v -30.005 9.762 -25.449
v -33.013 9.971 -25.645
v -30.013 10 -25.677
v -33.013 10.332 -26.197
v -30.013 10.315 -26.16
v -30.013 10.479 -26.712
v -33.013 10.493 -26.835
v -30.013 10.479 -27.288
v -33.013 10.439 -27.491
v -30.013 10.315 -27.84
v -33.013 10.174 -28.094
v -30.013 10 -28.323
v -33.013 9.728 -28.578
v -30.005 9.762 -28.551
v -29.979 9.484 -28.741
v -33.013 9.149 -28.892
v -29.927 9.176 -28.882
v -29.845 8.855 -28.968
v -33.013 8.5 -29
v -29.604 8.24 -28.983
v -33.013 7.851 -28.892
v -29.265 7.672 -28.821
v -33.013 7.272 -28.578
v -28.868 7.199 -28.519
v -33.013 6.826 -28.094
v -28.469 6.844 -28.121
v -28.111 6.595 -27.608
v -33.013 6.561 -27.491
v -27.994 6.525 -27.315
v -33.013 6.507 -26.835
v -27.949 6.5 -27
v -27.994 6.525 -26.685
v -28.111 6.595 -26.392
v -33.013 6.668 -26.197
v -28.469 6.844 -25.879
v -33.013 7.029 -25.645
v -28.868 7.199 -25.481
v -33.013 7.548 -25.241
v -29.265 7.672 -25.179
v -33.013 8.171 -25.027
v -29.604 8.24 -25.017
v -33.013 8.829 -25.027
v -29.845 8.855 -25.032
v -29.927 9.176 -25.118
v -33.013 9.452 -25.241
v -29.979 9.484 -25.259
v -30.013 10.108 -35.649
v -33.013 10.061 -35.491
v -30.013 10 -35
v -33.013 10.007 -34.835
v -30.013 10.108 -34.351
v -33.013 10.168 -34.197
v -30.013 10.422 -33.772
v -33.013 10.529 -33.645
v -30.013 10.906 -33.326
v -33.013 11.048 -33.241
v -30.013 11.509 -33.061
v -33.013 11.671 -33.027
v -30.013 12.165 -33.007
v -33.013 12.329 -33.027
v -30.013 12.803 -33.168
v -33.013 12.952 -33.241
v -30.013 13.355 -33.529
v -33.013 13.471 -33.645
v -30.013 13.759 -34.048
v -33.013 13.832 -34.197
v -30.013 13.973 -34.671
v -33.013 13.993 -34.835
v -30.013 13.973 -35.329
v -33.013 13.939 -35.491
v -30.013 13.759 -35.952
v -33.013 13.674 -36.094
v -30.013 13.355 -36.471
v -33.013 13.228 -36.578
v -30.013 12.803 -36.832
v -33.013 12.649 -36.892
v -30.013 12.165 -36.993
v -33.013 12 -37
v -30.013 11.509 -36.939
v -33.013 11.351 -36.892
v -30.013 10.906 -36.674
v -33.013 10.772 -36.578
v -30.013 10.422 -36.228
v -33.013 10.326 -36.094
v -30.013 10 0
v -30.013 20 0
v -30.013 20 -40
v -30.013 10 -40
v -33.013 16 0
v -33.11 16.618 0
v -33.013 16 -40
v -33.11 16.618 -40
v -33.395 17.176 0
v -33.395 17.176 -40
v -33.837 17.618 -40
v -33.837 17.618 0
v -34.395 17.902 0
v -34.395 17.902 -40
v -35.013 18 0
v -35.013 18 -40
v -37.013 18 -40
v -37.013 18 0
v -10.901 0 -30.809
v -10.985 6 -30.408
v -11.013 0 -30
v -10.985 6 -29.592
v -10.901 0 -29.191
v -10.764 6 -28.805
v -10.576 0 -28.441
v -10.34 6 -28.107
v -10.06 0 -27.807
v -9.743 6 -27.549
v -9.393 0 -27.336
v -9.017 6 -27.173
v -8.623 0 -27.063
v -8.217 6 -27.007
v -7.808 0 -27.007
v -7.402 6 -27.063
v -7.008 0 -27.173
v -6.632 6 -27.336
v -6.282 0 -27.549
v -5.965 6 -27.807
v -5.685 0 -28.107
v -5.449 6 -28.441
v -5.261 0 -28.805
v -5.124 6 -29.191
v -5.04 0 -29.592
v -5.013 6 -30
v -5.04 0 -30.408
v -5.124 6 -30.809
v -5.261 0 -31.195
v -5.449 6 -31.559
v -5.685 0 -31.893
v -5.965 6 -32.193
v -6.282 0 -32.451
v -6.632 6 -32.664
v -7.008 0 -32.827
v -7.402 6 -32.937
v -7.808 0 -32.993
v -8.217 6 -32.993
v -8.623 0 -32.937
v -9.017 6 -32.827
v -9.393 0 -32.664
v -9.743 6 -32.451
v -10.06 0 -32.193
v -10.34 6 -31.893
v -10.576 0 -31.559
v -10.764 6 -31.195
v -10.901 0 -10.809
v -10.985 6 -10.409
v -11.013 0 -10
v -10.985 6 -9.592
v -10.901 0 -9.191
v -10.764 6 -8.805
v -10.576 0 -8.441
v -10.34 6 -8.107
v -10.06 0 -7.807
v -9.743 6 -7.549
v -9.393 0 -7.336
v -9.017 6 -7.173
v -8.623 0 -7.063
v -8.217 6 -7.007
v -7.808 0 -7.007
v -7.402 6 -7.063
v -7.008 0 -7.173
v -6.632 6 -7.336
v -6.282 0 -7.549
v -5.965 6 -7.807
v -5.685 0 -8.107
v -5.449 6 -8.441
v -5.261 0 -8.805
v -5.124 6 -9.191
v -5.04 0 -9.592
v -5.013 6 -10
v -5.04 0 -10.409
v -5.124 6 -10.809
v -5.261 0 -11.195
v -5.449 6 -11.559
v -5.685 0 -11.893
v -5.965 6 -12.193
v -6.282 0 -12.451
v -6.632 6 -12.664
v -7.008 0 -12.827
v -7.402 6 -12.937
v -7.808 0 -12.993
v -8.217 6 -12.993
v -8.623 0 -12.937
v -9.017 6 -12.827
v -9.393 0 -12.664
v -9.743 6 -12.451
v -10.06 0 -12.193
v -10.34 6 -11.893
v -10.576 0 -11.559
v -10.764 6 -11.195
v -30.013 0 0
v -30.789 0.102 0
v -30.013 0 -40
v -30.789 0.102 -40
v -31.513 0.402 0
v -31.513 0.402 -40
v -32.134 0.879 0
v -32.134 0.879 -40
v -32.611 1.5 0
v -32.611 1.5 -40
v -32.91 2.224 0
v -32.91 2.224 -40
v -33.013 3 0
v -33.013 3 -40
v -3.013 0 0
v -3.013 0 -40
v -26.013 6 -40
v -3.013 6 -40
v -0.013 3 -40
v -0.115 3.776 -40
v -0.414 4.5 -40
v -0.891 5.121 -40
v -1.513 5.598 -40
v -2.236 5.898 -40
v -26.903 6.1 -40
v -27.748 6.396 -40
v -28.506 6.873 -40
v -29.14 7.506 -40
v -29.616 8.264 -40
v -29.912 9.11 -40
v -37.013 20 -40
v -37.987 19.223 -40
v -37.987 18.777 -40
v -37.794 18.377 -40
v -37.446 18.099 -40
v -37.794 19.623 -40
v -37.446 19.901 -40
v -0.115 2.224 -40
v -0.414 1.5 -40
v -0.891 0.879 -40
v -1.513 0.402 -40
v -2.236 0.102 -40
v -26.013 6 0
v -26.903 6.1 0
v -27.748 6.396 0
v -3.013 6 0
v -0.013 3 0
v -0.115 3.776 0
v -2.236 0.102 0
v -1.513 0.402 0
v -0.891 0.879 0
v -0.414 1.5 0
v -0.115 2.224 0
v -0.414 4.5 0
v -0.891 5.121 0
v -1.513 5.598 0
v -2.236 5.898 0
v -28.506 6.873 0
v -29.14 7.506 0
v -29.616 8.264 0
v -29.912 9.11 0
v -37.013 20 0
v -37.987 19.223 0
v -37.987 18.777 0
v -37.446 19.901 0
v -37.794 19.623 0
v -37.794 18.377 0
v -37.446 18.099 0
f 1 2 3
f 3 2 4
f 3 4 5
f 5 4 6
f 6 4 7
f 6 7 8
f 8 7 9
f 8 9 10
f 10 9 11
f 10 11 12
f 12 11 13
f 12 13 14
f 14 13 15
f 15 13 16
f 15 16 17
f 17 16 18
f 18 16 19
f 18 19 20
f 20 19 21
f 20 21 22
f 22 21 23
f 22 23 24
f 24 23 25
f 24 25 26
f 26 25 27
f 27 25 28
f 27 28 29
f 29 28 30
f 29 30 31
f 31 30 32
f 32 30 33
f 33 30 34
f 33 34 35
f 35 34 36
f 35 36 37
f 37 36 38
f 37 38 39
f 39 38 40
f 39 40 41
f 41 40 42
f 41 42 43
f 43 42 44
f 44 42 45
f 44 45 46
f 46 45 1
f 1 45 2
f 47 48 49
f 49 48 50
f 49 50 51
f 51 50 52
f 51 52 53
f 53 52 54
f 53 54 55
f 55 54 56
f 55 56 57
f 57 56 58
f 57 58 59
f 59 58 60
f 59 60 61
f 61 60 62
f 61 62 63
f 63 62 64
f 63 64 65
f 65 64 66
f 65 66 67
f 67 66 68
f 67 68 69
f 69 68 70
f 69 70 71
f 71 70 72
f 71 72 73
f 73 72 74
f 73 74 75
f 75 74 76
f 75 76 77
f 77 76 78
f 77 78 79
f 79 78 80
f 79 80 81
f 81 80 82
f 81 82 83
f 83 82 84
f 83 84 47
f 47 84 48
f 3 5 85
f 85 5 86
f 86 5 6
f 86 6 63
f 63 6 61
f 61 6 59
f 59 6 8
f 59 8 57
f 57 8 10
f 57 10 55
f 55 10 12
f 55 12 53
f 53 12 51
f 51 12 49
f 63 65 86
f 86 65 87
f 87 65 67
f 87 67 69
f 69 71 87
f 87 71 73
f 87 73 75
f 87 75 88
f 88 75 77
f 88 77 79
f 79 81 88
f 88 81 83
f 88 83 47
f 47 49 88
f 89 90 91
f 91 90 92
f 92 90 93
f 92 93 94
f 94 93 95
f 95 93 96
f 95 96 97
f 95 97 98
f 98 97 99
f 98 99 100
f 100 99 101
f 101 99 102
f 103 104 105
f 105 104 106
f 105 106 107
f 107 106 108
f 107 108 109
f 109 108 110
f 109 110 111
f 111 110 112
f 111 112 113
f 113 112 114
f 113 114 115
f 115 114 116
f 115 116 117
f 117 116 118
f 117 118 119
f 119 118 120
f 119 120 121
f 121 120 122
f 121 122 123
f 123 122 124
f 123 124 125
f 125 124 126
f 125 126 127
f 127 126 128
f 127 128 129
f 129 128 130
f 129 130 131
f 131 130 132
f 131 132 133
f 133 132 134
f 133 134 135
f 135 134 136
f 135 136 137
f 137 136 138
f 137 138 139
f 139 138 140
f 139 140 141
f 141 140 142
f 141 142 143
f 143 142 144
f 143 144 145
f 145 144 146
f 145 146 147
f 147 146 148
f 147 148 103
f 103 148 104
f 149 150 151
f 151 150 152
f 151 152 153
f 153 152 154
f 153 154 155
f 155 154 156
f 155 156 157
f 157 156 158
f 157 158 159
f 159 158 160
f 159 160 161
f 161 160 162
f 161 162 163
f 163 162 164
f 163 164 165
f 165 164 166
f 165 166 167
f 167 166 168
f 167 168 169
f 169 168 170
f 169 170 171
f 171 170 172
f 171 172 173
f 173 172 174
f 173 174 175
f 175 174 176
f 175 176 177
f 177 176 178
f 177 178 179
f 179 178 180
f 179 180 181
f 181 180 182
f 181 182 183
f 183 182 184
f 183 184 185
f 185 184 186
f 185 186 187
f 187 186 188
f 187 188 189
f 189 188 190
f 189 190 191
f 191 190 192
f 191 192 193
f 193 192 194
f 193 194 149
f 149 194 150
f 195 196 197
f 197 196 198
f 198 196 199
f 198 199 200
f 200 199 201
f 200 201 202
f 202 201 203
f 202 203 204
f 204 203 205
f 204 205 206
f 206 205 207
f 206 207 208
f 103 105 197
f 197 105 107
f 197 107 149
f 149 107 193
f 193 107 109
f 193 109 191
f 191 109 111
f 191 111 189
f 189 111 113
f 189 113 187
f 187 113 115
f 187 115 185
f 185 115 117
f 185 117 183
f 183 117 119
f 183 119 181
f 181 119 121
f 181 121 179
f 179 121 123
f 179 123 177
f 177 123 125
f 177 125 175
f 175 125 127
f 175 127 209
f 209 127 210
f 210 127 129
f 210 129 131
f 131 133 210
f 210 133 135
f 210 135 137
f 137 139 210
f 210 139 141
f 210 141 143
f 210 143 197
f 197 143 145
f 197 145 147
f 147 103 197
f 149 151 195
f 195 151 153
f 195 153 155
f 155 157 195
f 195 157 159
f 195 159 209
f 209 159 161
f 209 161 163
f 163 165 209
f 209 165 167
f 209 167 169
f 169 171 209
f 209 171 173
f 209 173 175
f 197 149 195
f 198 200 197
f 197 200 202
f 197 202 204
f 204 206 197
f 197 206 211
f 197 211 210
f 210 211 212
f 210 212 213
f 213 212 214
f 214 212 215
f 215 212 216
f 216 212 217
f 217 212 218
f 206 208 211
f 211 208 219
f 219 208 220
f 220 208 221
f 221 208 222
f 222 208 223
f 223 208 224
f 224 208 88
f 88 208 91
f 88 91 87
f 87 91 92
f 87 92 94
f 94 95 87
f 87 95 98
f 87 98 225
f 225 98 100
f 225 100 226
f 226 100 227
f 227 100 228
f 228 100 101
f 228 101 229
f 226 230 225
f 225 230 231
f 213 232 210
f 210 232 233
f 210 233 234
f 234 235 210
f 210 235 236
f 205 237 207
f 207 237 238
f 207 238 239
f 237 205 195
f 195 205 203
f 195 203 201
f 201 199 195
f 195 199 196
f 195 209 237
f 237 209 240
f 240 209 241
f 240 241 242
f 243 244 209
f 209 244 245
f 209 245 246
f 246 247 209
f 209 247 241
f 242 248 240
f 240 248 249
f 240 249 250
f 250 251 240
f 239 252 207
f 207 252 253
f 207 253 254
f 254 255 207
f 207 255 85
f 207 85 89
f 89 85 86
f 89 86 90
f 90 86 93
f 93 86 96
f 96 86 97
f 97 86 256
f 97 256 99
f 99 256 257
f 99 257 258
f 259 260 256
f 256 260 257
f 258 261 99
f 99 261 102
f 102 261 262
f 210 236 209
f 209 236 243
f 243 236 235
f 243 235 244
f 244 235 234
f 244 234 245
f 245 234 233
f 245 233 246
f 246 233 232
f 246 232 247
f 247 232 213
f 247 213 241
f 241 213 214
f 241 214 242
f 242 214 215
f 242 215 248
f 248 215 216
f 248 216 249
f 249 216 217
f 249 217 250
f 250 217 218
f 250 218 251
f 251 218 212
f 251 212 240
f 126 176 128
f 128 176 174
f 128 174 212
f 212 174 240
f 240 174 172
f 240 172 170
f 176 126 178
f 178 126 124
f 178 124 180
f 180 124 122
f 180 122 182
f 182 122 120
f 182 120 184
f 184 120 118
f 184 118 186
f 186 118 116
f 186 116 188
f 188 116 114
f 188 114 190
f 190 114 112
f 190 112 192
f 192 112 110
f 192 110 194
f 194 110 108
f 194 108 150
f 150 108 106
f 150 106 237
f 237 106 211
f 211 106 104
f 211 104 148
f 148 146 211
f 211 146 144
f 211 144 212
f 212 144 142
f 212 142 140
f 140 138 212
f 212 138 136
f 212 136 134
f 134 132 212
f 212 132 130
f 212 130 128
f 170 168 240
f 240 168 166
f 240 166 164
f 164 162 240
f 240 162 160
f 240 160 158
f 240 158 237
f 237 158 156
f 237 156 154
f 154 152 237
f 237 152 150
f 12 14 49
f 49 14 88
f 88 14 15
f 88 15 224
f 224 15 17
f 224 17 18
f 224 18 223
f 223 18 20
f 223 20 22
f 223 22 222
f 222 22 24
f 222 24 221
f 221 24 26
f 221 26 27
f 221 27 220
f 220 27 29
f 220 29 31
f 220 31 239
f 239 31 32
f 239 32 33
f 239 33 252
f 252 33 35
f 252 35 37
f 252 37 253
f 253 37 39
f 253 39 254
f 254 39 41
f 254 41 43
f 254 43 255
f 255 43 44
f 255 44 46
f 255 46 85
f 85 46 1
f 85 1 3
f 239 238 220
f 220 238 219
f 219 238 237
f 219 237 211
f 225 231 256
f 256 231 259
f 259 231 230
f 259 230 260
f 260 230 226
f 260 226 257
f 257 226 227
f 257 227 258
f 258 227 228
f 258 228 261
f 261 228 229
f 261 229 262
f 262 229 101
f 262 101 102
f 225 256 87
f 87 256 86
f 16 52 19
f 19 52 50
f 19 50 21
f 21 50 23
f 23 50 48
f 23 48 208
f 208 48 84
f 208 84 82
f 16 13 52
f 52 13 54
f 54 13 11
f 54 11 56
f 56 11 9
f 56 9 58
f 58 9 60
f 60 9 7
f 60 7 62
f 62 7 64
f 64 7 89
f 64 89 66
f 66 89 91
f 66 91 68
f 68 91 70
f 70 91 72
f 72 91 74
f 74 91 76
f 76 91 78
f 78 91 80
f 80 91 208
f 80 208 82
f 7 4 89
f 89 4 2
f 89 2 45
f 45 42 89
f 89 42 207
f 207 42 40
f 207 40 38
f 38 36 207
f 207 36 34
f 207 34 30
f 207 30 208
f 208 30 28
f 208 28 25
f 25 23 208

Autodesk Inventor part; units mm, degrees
ref_plane "YZ Plane" through (0, 0, 0) normal (1, 0, 0) x (0, 1, 0)
ref_plane "XZ Plane" through (0, 0, 0) normal (0, 1, 0) x (-1, 0, 0)
ref_plane "XY Plane" through (0, 0, 0) normal (0, 0, 1) x (1, 0, 0)
sketch "Sketch1" plane through (0, 0, 0) normal (0, 1, 0) x (-1, 0, 0)
  line L0 (0, 0) -> (33, 0)
  line L1 (33, 0) -> (33, -40)
  line L2 (33, -40) -> (0, -40)
  line L3 (0, -40) -> (0, 0)
  dimension "d0" = 33
  dimension "d1" = 40
extrude "Extrusion1" add sketch "Sketch1" along normal blind 6
sketch "Sketch2" plane through (0, 6, 0) normal (0, 1, 0) x (1, 0, 0)
  line L0 (-33, 0) -> (0, 0) projected
  line L1 (0, 40) -> (-33, 40) projected
  line L2 (-33, 0) -> (-30, 0)
  line L3 (-30, 0) -> (-30, 40)
  line L4 (-30, 40) -> (-33, 40)
  line L5 (-33, 40) -> (-33, 0)
  dimension "d4" = 3
extrude "Extrusion2" add sketch "Sketch2" along normal blind 14
sketch "Sketch3" plane through (-33, 0, -40) normal (-1, 0, 0) x (0, 0, 1)
  line L0 (0, 20) -> (40, 20) projected
  line L1 (40, 20) -> (0, 20)
  line L2 (0, 20) -> (0, 18)
  line L3 (0, 18) -> (40, 18)
  line L4 (40, 18) -> (40, 20)
  point P0 (40, 0)
  point P1 (0, 20)
  dimension "d7" = 40
  dimension "d8" = 2
extrude "Extrusion3" add sketch "Sketch3" along normal blind 5
fillet "Fillet1" radius 1 2 edges at (-38, 20, -20) (-38, 18, -20)
fillet "Fillet2" radius 4 1 edges at (-30, 6, -20)
fillet "Fillet3" radius 3 2 edges at (0, 6, -20) (0, 0, -20)
fillet "Fillet4" radius 3 1 edges at (-33, 0, -20)
sketch "Sketch4" plane through (0, 6, 0) normal (0, 1, 0) x (1, 0, 0)
  line L0 (-8, 0) -> (-8, 10)
  line L1 (-3, 40) -> (-30, 40) projected
  circle A0 centre (-8, 10) radius 3
  line L2 (-8, 40) -> (-8, 30)
  line L3 (-8, 40) -> (2, 40) construction
  circle A1 centre (-8, 30) radius 3
  point P0 (0, 0)
  dimension "d15" = 10
  dimension "d16" = 6
  dimension "d17" = 10
  dimension "d18" = 90
  dimension "d19" = 5
  dimension "d20" = 6
  dimension "d23" = 5
extrude "Extrusion4" cut sketch "Sketch4" against normal through all
fillet "Fillet5" radius 2 1 edges at (-33, 18, -20)
sketch "Sketch5" plane through (-33, 3, -40) normal (-1, 0, 0) x (0, 0, 1)
  line L0 (0, 5.5) -> (5, 5.5)
  line L1 (5, 5.5) -> (5, 9)
  line L2 (5, 5.5) -> (8.5, 5.5) construction
  line L3 (5, 5.5) -> (13, 5.5)
  circle A0 centre (5, 9) radius 2
  circle A1 centre (13, 5.5) radius 2
  line L4 (40, 0) -> (0, 0) projected
  line L5 (0, 7) -> (0, 17) projected
  line L6 (0, -3) -> (40, -3) projected
  dimension "d25" = 5
  dimension "d28" = 3.5
  dimension "d29" = 90
  dimension "d30" = 8
  dimension "d32" = 4
  dimension "d33" = 4
  dimension "d38" = 8.5
extrude "Extrusion5" cut sketch "Sketch5" against normal through all both and the other way through all
properties part number "Cable_Guide_Support"
